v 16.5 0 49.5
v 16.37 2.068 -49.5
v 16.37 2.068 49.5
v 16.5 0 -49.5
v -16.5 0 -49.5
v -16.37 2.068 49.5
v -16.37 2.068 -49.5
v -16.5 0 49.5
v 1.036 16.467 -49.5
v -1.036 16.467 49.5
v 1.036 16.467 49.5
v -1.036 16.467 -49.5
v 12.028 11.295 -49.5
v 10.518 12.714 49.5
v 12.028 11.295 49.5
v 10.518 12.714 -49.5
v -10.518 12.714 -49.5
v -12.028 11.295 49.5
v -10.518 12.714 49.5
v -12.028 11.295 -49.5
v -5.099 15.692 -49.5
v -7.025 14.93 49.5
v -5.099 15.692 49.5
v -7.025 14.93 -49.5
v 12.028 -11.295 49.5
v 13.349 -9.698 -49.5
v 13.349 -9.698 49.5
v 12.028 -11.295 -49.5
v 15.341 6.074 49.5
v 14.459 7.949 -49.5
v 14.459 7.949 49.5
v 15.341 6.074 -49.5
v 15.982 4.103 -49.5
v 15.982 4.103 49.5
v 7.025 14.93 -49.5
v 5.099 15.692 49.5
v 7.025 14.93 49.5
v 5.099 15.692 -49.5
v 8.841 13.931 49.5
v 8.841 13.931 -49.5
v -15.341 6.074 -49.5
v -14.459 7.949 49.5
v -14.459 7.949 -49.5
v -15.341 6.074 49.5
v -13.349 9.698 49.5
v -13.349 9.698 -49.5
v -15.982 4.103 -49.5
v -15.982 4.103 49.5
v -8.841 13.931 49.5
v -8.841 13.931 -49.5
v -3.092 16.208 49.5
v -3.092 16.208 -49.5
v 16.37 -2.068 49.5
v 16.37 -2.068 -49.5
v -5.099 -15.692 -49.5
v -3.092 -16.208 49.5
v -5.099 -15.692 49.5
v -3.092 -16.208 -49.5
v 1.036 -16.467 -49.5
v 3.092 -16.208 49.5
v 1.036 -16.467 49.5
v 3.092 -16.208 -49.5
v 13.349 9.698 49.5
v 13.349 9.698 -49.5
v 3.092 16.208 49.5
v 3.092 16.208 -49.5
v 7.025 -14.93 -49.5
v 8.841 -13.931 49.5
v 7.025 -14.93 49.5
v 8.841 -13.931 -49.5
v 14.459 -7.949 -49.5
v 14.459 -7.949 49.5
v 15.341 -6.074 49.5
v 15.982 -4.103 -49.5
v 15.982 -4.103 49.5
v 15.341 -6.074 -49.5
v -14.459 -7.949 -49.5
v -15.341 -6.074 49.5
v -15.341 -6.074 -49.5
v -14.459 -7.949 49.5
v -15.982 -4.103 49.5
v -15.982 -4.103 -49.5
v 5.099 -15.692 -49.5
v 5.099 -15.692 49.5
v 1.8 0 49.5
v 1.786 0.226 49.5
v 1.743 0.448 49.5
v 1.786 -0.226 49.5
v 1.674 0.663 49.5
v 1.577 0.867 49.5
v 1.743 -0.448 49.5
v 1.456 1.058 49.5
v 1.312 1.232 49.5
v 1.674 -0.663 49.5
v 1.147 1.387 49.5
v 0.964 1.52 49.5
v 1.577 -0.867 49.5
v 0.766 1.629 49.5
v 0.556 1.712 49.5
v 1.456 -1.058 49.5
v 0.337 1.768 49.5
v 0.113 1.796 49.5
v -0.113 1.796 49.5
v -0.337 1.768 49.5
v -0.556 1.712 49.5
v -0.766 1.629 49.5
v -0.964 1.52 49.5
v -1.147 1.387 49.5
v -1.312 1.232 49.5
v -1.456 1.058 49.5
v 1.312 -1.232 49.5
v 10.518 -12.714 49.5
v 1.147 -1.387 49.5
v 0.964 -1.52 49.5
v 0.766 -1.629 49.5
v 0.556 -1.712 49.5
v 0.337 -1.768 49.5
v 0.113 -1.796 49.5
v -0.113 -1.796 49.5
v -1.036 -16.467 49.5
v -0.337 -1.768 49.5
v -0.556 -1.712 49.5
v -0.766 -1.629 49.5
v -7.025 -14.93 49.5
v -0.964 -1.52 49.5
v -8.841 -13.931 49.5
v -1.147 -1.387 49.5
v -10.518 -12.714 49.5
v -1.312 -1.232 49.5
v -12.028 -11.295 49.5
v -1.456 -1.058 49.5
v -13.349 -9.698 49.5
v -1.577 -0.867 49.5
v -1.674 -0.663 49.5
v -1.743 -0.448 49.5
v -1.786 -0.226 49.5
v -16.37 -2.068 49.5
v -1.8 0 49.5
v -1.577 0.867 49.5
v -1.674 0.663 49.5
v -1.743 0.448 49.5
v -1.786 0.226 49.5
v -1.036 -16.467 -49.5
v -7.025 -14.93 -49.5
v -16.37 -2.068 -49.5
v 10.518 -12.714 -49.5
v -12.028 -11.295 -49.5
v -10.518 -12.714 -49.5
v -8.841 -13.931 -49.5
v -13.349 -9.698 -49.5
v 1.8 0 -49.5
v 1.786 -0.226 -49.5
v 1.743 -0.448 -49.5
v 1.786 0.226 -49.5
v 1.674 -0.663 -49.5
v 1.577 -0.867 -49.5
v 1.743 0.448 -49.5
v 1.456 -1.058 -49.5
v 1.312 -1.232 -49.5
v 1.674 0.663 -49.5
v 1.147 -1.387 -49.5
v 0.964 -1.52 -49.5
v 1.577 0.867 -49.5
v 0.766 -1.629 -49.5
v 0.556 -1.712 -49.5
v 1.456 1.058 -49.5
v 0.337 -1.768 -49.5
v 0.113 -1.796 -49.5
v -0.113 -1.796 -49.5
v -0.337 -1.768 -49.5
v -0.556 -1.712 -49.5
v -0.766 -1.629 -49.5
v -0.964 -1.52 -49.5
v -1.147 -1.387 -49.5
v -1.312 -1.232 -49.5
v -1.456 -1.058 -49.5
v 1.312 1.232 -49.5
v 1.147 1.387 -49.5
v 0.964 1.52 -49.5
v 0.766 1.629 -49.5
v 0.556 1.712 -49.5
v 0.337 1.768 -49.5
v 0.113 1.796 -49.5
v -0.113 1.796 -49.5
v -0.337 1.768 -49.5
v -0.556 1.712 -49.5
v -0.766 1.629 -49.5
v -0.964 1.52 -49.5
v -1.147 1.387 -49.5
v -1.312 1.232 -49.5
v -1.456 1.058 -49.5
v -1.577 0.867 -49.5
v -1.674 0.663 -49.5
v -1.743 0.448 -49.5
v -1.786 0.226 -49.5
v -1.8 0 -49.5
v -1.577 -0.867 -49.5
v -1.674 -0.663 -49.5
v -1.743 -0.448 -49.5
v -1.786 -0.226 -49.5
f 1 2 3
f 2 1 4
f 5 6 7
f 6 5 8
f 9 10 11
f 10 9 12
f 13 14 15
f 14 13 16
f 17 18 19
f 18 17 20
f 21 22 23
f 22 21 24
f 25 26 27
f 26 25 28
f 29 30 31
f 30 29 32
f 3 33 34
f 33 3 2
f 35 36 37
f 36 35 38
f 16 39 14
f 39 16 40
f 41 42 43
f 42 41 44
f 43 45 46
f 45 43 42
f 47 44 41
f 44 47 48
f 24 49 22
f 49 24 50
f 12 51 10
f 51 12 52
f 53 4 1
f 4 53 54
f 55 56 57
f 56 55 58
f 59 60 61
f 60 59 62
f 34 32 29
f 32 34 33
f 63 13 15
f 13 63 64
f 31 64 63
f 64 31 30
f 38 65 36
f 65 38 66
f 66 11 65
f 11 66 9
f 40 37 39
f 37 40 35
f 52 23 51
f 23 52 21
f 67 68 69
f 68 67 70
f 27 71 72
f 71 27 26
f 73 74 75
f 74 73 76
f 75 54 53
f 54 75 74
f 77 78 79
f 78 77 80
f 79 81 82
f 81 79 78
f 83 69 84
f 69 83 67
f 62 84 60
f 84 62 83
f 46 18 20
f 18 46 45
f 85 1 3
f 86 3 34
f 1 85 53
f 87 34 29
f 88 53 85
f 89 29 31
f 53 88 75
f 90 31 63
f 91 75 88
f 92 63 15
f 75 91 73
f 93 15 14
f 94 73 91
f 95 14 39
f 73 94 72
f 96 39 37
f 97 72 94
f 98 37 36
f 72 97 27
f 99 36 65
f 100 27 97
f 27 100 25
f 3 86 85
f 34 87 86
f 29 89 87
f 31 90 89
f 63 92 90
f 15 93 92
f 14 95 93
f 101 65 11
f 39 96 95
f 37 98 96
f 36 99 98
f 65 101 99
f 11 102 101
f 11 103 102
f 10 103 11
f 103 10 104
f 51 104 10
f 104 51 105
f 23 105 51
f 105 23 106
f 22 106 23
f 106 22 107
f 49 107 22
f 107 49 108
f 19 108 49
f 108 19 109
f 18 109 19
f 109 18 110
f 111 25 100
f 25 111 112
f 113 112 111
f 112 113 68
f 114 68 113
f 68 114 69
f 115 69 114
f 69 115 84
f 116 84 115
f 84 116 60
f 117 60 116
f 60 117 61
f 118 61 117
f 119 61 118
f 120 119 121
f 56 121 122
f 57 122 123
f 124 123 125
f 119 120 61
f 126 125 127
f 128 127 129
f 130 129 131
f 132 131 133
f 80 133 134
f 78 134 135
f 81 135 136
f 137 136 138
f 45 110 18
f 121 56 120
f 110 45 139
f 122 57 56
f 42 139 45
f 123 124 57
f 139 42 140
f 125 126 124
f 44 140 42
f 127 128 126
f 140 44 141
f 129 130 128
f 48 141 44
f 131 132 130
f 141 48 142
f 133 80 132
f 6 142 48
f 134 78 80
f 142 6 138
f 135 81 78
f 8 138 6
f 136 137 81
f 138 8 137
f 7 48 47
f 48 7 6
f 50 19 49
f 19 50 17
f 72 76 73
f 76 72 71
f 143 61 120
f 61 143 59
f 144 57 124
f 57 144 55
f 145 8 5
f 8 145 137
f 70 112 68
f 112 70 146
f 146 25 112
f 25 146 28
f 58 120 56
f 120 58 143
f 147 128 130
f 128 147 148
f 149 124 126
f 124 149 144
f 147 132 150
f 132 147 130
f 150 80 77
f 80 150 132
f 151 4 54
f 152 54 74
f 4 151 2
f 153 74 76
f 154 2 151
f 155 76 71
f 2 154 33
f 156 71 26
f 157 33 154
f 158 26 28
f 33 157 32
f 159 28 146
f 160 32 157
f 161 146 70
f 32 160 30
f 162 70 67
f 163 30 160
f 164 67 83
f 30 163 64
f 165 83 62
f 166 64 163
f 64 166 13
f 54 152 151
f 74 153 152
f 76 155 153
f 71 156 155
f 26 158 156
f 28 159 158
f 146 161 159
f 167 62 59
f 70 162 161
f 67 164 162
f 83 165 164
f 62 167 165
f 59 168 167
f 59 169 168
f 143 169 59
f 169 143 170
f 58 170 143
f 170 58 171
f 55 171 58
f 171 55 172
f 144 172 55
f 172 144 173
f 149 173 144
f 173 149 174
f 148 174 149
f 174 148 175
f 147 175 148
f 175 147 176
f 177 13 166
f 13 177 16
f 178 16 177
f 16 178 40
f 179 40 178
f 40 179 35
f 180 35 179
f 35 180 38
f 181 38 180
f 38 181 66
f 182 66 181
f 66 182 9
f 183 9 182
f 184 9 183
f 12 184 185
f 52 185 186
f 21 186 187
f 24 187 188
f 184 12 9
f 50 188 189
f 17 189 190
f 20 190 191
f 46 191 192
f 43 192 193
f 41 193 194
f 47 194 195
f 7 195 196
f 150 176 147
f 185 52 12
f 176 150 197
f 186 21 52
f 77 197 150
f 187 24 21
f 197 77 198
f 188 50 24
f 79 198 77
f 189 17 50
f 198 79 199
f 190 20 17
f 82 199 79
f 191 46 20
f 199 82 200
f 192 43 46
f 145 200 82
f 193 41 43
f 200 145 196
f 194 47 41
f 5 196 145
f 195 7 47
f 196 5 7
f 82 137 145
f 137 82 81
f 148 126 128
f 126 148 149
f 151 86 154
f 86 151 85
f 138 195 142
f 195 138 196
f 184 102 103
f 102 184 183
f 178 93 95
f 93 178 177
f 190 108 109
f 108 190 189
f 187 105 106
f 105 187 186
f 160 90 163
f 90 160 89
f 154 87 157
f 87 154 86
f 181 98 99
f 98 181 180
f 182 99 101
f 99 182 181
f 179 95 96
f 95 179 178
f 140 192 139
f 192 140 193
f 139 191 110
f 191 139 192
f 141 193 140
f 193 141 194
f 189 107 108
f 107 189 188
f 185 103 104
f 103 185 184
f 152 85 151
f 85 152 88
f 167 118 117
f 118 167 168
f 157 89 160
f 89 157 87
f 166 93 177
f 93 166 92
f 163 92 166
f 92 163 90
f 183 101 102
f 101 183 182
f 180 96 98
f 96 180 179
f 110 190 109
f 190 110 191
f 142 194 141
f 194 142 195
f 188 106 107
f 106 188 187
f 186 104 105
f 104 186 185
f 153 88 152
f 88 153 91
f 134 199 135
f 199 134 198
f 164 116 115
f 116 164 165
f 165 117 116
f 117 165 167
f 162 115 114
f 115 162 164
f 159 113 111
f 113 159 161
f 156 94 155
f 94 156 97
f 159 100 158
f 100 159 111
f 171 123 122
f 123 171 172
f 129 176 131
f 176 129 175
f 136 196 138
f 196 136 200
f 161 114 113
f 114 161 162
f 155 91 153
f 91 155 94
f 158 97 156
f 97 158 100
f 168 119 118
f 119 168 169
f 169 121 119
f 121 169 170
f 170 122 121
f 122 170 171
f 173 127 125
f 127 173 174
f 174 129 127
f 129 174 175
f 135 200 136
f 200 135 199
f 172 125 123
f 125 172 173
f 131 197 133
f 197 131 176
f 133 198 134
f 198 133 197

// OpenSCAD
$fn = 50;


difference() {
	union() {
		translate(v = [0, 0, -49.5000000000]) {
			cylinder(h = 99, r = 16.5000000000);
		}
	}
	union() {
		translate(v = [0, 0, -100.0000000000]) {
			cylinder(h = 200, r = 1.8000000000);
		}
	}
}
